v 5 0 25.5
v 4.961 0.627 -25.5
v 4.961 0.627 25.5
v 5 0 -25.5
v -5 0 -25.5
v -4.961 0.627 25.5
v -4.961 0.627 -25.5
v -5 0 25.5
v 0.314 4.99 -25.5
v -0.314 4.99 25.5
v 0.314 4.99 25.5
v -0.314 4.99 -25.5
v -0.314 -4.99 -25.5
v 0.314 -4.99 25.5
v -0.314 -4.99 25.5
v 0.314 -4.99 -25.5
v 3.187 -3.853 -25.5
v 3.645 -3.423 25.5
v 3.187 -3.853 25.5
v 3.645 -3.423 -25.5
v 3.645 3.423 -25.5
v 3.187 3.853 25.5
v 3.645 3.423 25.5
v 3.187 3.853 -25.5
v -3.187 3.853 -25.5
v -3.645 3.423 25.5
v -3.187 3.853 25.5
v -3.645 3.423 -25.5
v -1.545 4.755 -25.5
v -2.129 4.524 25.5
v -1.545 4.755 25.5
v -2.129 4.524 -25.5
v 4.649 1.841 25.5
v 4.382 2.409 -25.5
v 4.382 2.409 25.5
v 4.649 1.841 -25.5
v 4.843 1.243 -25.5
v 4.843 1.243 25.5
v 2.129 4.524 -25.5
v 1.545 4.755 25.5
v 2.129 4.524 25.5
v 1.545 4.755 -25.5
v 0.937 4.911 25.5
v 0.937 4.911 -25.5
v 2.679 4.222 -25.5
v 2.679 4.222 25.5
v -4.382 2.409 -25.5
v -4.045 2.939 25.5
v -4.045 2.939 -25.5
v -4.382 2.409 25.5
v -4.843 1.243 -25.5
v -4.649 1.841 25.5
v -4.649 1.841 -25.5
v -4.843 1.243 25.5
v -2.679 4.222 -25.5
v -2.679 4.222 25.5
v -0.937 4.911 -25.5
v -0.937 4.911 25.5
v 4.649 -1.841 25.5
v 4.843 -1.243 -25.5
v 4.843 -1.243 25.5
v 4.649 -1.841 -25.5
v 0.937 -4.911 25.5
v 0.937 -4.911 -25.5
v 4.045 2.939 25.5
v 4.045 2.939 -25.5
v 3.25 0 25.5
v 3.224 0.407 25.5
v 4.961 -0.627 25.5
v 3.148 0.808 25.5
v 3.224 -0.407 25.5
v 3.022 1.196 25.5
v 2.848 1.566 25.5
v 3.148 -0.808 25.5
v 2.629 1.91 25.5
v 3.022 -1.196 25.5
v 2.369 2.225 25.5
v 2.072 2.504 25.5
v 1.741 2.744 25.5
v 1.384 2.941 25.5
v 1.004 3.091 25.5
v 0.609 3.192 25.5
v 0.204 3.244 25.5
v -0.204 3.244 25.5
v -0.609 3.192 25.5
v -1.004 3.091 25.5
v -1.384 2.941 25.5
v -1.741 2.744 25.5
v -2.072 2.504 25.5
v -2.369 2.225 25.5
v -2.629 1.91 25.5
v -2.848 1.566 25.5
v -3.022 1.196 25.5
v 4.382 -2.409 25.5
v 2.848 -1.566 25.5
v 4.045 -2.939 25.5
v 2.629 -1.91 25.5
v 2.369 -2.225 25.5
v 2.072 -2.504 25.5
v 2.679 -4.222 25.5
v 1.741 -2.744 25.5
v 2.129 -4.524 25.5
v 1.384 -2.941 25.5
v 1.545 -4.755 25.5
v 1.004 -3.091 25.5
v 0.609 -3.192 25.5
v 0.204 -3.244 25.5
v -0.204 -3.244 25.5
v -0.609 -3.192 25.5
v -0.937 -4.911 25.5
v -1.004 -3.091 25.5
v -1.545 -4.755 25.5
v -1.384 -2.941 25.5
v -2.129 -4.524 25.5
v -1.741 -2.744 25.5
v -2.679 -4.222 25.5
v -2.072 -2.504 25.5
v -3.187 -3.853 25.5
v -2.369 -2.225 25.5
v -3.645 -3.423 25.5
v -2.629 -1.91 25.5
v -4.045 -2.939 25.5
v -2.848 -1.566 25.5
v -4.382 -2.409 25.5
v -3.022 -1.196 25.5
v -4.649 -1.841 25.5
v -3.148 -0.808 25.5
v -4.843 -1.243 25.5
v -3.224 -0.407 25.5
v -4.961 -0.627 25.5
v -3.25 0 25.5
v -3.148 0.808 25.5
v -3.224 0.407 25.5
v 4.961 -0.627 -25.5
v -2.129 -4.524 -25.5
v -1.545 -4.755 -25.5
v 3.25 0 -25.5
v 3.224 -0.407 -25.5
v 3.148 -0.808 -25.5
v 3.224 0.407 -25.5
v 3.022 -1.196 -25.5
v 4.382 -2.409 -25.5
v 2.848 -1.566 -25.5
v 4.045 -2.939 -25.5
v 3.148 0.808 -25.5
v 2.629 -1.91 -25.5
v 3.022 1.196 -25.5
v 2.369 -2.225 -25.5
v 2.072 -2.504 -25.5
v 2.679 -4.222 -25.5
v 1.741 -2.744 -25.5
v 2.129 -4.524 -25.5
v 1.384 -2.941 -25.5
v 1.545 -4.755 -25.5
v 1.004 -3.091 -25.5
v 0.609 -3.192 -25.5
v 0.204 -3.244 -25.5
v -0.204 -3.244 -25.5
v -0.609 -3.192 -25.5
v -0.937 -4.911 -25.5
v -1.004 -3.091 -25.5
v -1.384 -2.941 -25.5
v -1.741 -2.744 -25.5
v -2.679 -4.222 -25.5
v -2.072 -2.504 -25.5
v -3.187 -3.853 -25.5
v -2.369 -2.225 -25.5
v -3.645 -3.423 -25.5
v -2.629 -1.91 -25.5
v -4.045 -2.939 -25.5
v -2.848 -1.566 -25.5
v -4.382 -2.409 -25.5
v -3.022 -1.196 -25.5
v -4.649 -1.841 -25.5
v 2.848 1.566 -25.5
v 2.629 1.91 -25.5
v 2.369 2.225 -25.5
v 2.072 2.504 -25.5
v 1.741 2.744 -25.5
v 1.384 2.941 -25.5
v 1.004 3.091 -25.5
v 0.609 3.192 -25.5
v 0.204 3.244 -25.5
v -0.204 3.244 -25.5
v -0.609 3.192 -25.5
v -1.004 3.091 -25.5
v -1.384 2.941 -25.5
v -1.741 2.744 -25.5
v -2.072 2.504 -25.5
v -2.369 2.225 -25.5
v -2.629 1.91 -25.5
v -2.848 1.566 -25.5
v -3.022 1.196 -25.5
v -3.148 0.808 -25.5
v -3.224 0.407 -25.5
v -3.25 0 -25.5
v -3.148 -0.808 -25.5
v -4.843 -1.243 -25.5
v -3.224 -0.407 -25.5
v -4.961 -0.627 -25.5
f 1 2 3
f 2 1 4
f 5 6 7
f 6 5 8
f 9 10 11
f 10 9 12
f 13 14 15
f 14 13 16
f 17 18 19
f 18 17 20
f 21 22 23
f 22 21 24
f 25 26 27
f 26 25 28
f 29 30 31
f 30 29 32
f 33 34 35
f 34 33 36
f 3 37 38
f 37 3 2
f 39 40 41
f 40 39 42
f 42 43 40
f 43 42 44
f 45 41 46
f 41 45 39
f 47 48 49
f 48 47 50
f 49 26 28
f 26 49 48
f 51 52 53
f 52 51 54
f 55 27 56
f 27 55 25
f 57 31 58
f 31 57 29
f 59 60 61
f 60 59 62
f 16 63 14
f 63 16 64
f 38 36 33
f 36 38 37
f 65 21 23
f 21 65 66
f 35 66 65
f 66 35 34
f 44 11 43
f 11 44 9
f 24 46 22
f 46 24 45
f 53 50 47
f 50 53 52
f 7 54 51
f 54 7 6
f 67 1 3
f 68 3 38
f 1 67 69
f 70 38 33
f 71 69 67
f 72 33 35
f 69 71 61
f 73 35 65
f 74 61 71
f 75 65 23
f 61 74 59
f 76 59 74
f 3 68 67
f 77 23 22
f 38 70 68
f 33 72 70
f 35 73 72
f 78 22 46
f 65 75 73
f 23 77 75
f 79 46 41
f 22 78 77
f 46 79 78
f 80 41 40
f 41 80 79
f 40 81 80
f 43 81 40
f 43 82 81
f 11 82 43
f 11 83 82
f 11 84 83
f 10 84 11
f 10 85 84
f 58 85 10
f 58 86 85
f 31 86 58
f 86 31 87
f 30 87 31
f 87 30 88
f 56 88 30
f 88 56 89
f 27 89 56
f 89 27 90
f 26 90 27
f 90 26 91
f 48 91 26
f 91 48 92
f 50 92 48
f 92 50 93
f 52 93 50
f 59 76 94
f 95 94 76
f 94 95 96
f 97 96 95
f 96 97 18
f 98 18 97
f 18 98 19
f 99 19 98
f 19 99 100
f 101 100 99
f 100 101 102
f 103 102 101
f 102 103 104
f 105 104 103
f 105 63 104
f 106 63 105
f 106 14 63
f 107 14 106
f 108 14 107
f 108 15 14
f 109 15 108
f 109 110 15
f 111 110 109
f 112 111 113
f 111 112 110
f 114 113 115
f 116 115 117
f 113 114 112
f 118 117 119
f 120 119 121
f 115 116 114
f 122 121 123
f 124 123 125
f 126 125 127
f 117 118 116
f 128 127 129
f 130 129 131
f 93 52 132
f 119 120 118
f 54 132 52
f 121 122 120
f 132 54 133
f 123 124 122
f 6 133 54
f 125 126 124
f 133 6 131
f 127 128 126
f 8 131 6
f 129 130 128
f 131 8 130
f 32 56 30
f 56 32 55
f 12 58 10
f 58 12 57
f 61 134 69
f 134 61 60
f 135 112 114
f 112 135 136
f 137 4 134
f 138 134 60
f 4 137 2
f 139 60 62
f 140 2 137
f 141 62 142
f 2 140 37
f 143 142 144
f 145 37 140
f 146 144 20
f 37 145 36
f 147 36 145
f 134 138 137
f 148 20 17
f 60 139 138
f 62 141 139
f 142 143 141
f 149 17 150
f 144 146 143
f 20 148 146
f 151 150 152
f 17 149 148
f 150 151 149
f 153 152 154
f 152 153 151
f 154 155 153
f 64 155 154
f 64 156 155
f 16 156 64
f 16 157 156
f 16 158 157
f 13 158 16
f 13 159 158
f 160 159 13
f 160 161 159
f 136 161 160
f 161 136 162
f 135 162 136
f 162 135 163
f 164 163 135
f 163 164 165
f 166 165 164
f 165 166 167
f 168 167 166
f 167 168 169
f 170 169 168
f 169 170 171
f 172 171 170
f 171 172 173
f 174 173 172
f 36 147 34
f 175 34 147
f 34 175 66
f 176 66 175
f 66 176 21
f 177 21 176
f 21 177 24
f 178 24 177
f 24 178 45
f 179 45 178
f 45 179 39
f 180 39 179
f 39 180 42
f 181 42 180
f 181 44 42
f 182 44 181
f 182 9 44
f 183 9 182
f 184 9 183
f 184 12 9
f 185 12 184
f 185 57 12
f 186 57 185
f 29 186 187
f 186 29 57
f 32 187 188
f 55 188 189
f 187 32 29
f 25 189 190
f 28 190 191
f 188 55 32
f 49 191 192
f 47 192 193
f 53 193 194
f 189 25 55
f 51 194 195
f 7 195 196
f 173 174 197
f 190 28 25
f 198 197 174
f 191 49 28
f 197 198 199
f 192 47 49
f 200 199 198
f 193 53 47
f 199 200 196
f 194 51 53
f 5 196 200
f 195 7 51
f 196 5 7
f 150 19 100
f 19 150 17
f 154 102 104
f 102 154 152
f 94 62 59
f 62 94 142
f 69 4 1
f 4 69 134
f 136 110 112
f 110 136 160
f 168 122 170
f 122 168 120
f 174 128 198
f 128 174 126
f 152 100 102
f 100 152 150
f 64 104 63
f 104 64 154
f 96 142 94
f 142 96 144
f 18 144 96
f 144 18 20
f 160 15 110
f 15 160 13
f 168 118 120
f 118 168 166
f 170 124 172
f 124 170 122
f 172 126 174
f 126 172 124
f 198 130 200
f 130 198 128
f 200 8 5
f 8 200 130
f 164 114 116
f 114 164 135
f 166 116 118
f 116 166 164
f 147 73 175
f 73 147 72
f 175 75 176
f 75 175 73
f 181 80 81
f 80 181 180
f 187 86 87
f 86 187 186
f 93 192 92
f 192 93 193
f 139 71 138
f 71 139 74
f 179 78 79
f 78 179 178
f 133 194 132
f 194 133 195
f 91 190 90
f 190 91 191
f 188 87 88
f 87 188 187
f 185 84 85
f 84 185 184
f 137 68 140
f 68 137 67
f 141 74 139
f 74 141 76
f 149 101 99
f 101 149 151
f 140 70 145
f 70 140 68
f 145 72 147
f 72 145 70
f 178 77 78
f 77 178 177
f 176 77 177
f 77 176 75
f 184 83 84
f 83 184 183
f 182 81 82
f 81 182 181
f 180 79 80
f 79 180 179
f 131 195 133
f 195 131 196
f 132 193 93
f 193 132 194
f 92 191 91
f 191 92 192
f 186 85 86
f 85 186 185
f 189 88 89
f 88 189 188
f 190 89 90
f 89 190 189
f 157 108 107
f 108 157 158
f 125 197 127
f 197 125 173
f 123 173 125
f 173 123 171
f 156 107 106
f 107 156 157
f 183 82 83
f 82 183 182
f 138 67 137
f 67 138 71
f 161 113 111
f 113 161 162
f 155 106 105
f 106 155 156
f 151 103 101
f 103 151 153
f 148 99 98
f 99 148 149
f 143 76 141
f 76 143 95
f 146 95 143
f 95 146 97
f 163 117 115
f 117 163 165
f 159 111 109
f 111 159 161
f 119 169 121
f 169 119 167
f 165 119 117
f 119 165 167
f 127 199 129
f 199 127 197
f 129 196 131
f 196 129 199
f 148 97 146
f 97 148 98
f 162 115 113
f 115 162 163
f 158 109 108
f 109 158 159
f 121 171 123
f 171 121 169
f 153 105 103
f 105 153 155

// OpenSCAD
$fn = 50;


difference() {
	union() {
		translate(v = [0, 0, -25.5000000000]) {
			cylinder(h = 51, r = 5.0000000000);
		}
	}
	union() {
		translate(v = [0, 0, -100.0000000000]) {
			cylinder(h = 200, r = 3.2500000000);
		}
	}
}
